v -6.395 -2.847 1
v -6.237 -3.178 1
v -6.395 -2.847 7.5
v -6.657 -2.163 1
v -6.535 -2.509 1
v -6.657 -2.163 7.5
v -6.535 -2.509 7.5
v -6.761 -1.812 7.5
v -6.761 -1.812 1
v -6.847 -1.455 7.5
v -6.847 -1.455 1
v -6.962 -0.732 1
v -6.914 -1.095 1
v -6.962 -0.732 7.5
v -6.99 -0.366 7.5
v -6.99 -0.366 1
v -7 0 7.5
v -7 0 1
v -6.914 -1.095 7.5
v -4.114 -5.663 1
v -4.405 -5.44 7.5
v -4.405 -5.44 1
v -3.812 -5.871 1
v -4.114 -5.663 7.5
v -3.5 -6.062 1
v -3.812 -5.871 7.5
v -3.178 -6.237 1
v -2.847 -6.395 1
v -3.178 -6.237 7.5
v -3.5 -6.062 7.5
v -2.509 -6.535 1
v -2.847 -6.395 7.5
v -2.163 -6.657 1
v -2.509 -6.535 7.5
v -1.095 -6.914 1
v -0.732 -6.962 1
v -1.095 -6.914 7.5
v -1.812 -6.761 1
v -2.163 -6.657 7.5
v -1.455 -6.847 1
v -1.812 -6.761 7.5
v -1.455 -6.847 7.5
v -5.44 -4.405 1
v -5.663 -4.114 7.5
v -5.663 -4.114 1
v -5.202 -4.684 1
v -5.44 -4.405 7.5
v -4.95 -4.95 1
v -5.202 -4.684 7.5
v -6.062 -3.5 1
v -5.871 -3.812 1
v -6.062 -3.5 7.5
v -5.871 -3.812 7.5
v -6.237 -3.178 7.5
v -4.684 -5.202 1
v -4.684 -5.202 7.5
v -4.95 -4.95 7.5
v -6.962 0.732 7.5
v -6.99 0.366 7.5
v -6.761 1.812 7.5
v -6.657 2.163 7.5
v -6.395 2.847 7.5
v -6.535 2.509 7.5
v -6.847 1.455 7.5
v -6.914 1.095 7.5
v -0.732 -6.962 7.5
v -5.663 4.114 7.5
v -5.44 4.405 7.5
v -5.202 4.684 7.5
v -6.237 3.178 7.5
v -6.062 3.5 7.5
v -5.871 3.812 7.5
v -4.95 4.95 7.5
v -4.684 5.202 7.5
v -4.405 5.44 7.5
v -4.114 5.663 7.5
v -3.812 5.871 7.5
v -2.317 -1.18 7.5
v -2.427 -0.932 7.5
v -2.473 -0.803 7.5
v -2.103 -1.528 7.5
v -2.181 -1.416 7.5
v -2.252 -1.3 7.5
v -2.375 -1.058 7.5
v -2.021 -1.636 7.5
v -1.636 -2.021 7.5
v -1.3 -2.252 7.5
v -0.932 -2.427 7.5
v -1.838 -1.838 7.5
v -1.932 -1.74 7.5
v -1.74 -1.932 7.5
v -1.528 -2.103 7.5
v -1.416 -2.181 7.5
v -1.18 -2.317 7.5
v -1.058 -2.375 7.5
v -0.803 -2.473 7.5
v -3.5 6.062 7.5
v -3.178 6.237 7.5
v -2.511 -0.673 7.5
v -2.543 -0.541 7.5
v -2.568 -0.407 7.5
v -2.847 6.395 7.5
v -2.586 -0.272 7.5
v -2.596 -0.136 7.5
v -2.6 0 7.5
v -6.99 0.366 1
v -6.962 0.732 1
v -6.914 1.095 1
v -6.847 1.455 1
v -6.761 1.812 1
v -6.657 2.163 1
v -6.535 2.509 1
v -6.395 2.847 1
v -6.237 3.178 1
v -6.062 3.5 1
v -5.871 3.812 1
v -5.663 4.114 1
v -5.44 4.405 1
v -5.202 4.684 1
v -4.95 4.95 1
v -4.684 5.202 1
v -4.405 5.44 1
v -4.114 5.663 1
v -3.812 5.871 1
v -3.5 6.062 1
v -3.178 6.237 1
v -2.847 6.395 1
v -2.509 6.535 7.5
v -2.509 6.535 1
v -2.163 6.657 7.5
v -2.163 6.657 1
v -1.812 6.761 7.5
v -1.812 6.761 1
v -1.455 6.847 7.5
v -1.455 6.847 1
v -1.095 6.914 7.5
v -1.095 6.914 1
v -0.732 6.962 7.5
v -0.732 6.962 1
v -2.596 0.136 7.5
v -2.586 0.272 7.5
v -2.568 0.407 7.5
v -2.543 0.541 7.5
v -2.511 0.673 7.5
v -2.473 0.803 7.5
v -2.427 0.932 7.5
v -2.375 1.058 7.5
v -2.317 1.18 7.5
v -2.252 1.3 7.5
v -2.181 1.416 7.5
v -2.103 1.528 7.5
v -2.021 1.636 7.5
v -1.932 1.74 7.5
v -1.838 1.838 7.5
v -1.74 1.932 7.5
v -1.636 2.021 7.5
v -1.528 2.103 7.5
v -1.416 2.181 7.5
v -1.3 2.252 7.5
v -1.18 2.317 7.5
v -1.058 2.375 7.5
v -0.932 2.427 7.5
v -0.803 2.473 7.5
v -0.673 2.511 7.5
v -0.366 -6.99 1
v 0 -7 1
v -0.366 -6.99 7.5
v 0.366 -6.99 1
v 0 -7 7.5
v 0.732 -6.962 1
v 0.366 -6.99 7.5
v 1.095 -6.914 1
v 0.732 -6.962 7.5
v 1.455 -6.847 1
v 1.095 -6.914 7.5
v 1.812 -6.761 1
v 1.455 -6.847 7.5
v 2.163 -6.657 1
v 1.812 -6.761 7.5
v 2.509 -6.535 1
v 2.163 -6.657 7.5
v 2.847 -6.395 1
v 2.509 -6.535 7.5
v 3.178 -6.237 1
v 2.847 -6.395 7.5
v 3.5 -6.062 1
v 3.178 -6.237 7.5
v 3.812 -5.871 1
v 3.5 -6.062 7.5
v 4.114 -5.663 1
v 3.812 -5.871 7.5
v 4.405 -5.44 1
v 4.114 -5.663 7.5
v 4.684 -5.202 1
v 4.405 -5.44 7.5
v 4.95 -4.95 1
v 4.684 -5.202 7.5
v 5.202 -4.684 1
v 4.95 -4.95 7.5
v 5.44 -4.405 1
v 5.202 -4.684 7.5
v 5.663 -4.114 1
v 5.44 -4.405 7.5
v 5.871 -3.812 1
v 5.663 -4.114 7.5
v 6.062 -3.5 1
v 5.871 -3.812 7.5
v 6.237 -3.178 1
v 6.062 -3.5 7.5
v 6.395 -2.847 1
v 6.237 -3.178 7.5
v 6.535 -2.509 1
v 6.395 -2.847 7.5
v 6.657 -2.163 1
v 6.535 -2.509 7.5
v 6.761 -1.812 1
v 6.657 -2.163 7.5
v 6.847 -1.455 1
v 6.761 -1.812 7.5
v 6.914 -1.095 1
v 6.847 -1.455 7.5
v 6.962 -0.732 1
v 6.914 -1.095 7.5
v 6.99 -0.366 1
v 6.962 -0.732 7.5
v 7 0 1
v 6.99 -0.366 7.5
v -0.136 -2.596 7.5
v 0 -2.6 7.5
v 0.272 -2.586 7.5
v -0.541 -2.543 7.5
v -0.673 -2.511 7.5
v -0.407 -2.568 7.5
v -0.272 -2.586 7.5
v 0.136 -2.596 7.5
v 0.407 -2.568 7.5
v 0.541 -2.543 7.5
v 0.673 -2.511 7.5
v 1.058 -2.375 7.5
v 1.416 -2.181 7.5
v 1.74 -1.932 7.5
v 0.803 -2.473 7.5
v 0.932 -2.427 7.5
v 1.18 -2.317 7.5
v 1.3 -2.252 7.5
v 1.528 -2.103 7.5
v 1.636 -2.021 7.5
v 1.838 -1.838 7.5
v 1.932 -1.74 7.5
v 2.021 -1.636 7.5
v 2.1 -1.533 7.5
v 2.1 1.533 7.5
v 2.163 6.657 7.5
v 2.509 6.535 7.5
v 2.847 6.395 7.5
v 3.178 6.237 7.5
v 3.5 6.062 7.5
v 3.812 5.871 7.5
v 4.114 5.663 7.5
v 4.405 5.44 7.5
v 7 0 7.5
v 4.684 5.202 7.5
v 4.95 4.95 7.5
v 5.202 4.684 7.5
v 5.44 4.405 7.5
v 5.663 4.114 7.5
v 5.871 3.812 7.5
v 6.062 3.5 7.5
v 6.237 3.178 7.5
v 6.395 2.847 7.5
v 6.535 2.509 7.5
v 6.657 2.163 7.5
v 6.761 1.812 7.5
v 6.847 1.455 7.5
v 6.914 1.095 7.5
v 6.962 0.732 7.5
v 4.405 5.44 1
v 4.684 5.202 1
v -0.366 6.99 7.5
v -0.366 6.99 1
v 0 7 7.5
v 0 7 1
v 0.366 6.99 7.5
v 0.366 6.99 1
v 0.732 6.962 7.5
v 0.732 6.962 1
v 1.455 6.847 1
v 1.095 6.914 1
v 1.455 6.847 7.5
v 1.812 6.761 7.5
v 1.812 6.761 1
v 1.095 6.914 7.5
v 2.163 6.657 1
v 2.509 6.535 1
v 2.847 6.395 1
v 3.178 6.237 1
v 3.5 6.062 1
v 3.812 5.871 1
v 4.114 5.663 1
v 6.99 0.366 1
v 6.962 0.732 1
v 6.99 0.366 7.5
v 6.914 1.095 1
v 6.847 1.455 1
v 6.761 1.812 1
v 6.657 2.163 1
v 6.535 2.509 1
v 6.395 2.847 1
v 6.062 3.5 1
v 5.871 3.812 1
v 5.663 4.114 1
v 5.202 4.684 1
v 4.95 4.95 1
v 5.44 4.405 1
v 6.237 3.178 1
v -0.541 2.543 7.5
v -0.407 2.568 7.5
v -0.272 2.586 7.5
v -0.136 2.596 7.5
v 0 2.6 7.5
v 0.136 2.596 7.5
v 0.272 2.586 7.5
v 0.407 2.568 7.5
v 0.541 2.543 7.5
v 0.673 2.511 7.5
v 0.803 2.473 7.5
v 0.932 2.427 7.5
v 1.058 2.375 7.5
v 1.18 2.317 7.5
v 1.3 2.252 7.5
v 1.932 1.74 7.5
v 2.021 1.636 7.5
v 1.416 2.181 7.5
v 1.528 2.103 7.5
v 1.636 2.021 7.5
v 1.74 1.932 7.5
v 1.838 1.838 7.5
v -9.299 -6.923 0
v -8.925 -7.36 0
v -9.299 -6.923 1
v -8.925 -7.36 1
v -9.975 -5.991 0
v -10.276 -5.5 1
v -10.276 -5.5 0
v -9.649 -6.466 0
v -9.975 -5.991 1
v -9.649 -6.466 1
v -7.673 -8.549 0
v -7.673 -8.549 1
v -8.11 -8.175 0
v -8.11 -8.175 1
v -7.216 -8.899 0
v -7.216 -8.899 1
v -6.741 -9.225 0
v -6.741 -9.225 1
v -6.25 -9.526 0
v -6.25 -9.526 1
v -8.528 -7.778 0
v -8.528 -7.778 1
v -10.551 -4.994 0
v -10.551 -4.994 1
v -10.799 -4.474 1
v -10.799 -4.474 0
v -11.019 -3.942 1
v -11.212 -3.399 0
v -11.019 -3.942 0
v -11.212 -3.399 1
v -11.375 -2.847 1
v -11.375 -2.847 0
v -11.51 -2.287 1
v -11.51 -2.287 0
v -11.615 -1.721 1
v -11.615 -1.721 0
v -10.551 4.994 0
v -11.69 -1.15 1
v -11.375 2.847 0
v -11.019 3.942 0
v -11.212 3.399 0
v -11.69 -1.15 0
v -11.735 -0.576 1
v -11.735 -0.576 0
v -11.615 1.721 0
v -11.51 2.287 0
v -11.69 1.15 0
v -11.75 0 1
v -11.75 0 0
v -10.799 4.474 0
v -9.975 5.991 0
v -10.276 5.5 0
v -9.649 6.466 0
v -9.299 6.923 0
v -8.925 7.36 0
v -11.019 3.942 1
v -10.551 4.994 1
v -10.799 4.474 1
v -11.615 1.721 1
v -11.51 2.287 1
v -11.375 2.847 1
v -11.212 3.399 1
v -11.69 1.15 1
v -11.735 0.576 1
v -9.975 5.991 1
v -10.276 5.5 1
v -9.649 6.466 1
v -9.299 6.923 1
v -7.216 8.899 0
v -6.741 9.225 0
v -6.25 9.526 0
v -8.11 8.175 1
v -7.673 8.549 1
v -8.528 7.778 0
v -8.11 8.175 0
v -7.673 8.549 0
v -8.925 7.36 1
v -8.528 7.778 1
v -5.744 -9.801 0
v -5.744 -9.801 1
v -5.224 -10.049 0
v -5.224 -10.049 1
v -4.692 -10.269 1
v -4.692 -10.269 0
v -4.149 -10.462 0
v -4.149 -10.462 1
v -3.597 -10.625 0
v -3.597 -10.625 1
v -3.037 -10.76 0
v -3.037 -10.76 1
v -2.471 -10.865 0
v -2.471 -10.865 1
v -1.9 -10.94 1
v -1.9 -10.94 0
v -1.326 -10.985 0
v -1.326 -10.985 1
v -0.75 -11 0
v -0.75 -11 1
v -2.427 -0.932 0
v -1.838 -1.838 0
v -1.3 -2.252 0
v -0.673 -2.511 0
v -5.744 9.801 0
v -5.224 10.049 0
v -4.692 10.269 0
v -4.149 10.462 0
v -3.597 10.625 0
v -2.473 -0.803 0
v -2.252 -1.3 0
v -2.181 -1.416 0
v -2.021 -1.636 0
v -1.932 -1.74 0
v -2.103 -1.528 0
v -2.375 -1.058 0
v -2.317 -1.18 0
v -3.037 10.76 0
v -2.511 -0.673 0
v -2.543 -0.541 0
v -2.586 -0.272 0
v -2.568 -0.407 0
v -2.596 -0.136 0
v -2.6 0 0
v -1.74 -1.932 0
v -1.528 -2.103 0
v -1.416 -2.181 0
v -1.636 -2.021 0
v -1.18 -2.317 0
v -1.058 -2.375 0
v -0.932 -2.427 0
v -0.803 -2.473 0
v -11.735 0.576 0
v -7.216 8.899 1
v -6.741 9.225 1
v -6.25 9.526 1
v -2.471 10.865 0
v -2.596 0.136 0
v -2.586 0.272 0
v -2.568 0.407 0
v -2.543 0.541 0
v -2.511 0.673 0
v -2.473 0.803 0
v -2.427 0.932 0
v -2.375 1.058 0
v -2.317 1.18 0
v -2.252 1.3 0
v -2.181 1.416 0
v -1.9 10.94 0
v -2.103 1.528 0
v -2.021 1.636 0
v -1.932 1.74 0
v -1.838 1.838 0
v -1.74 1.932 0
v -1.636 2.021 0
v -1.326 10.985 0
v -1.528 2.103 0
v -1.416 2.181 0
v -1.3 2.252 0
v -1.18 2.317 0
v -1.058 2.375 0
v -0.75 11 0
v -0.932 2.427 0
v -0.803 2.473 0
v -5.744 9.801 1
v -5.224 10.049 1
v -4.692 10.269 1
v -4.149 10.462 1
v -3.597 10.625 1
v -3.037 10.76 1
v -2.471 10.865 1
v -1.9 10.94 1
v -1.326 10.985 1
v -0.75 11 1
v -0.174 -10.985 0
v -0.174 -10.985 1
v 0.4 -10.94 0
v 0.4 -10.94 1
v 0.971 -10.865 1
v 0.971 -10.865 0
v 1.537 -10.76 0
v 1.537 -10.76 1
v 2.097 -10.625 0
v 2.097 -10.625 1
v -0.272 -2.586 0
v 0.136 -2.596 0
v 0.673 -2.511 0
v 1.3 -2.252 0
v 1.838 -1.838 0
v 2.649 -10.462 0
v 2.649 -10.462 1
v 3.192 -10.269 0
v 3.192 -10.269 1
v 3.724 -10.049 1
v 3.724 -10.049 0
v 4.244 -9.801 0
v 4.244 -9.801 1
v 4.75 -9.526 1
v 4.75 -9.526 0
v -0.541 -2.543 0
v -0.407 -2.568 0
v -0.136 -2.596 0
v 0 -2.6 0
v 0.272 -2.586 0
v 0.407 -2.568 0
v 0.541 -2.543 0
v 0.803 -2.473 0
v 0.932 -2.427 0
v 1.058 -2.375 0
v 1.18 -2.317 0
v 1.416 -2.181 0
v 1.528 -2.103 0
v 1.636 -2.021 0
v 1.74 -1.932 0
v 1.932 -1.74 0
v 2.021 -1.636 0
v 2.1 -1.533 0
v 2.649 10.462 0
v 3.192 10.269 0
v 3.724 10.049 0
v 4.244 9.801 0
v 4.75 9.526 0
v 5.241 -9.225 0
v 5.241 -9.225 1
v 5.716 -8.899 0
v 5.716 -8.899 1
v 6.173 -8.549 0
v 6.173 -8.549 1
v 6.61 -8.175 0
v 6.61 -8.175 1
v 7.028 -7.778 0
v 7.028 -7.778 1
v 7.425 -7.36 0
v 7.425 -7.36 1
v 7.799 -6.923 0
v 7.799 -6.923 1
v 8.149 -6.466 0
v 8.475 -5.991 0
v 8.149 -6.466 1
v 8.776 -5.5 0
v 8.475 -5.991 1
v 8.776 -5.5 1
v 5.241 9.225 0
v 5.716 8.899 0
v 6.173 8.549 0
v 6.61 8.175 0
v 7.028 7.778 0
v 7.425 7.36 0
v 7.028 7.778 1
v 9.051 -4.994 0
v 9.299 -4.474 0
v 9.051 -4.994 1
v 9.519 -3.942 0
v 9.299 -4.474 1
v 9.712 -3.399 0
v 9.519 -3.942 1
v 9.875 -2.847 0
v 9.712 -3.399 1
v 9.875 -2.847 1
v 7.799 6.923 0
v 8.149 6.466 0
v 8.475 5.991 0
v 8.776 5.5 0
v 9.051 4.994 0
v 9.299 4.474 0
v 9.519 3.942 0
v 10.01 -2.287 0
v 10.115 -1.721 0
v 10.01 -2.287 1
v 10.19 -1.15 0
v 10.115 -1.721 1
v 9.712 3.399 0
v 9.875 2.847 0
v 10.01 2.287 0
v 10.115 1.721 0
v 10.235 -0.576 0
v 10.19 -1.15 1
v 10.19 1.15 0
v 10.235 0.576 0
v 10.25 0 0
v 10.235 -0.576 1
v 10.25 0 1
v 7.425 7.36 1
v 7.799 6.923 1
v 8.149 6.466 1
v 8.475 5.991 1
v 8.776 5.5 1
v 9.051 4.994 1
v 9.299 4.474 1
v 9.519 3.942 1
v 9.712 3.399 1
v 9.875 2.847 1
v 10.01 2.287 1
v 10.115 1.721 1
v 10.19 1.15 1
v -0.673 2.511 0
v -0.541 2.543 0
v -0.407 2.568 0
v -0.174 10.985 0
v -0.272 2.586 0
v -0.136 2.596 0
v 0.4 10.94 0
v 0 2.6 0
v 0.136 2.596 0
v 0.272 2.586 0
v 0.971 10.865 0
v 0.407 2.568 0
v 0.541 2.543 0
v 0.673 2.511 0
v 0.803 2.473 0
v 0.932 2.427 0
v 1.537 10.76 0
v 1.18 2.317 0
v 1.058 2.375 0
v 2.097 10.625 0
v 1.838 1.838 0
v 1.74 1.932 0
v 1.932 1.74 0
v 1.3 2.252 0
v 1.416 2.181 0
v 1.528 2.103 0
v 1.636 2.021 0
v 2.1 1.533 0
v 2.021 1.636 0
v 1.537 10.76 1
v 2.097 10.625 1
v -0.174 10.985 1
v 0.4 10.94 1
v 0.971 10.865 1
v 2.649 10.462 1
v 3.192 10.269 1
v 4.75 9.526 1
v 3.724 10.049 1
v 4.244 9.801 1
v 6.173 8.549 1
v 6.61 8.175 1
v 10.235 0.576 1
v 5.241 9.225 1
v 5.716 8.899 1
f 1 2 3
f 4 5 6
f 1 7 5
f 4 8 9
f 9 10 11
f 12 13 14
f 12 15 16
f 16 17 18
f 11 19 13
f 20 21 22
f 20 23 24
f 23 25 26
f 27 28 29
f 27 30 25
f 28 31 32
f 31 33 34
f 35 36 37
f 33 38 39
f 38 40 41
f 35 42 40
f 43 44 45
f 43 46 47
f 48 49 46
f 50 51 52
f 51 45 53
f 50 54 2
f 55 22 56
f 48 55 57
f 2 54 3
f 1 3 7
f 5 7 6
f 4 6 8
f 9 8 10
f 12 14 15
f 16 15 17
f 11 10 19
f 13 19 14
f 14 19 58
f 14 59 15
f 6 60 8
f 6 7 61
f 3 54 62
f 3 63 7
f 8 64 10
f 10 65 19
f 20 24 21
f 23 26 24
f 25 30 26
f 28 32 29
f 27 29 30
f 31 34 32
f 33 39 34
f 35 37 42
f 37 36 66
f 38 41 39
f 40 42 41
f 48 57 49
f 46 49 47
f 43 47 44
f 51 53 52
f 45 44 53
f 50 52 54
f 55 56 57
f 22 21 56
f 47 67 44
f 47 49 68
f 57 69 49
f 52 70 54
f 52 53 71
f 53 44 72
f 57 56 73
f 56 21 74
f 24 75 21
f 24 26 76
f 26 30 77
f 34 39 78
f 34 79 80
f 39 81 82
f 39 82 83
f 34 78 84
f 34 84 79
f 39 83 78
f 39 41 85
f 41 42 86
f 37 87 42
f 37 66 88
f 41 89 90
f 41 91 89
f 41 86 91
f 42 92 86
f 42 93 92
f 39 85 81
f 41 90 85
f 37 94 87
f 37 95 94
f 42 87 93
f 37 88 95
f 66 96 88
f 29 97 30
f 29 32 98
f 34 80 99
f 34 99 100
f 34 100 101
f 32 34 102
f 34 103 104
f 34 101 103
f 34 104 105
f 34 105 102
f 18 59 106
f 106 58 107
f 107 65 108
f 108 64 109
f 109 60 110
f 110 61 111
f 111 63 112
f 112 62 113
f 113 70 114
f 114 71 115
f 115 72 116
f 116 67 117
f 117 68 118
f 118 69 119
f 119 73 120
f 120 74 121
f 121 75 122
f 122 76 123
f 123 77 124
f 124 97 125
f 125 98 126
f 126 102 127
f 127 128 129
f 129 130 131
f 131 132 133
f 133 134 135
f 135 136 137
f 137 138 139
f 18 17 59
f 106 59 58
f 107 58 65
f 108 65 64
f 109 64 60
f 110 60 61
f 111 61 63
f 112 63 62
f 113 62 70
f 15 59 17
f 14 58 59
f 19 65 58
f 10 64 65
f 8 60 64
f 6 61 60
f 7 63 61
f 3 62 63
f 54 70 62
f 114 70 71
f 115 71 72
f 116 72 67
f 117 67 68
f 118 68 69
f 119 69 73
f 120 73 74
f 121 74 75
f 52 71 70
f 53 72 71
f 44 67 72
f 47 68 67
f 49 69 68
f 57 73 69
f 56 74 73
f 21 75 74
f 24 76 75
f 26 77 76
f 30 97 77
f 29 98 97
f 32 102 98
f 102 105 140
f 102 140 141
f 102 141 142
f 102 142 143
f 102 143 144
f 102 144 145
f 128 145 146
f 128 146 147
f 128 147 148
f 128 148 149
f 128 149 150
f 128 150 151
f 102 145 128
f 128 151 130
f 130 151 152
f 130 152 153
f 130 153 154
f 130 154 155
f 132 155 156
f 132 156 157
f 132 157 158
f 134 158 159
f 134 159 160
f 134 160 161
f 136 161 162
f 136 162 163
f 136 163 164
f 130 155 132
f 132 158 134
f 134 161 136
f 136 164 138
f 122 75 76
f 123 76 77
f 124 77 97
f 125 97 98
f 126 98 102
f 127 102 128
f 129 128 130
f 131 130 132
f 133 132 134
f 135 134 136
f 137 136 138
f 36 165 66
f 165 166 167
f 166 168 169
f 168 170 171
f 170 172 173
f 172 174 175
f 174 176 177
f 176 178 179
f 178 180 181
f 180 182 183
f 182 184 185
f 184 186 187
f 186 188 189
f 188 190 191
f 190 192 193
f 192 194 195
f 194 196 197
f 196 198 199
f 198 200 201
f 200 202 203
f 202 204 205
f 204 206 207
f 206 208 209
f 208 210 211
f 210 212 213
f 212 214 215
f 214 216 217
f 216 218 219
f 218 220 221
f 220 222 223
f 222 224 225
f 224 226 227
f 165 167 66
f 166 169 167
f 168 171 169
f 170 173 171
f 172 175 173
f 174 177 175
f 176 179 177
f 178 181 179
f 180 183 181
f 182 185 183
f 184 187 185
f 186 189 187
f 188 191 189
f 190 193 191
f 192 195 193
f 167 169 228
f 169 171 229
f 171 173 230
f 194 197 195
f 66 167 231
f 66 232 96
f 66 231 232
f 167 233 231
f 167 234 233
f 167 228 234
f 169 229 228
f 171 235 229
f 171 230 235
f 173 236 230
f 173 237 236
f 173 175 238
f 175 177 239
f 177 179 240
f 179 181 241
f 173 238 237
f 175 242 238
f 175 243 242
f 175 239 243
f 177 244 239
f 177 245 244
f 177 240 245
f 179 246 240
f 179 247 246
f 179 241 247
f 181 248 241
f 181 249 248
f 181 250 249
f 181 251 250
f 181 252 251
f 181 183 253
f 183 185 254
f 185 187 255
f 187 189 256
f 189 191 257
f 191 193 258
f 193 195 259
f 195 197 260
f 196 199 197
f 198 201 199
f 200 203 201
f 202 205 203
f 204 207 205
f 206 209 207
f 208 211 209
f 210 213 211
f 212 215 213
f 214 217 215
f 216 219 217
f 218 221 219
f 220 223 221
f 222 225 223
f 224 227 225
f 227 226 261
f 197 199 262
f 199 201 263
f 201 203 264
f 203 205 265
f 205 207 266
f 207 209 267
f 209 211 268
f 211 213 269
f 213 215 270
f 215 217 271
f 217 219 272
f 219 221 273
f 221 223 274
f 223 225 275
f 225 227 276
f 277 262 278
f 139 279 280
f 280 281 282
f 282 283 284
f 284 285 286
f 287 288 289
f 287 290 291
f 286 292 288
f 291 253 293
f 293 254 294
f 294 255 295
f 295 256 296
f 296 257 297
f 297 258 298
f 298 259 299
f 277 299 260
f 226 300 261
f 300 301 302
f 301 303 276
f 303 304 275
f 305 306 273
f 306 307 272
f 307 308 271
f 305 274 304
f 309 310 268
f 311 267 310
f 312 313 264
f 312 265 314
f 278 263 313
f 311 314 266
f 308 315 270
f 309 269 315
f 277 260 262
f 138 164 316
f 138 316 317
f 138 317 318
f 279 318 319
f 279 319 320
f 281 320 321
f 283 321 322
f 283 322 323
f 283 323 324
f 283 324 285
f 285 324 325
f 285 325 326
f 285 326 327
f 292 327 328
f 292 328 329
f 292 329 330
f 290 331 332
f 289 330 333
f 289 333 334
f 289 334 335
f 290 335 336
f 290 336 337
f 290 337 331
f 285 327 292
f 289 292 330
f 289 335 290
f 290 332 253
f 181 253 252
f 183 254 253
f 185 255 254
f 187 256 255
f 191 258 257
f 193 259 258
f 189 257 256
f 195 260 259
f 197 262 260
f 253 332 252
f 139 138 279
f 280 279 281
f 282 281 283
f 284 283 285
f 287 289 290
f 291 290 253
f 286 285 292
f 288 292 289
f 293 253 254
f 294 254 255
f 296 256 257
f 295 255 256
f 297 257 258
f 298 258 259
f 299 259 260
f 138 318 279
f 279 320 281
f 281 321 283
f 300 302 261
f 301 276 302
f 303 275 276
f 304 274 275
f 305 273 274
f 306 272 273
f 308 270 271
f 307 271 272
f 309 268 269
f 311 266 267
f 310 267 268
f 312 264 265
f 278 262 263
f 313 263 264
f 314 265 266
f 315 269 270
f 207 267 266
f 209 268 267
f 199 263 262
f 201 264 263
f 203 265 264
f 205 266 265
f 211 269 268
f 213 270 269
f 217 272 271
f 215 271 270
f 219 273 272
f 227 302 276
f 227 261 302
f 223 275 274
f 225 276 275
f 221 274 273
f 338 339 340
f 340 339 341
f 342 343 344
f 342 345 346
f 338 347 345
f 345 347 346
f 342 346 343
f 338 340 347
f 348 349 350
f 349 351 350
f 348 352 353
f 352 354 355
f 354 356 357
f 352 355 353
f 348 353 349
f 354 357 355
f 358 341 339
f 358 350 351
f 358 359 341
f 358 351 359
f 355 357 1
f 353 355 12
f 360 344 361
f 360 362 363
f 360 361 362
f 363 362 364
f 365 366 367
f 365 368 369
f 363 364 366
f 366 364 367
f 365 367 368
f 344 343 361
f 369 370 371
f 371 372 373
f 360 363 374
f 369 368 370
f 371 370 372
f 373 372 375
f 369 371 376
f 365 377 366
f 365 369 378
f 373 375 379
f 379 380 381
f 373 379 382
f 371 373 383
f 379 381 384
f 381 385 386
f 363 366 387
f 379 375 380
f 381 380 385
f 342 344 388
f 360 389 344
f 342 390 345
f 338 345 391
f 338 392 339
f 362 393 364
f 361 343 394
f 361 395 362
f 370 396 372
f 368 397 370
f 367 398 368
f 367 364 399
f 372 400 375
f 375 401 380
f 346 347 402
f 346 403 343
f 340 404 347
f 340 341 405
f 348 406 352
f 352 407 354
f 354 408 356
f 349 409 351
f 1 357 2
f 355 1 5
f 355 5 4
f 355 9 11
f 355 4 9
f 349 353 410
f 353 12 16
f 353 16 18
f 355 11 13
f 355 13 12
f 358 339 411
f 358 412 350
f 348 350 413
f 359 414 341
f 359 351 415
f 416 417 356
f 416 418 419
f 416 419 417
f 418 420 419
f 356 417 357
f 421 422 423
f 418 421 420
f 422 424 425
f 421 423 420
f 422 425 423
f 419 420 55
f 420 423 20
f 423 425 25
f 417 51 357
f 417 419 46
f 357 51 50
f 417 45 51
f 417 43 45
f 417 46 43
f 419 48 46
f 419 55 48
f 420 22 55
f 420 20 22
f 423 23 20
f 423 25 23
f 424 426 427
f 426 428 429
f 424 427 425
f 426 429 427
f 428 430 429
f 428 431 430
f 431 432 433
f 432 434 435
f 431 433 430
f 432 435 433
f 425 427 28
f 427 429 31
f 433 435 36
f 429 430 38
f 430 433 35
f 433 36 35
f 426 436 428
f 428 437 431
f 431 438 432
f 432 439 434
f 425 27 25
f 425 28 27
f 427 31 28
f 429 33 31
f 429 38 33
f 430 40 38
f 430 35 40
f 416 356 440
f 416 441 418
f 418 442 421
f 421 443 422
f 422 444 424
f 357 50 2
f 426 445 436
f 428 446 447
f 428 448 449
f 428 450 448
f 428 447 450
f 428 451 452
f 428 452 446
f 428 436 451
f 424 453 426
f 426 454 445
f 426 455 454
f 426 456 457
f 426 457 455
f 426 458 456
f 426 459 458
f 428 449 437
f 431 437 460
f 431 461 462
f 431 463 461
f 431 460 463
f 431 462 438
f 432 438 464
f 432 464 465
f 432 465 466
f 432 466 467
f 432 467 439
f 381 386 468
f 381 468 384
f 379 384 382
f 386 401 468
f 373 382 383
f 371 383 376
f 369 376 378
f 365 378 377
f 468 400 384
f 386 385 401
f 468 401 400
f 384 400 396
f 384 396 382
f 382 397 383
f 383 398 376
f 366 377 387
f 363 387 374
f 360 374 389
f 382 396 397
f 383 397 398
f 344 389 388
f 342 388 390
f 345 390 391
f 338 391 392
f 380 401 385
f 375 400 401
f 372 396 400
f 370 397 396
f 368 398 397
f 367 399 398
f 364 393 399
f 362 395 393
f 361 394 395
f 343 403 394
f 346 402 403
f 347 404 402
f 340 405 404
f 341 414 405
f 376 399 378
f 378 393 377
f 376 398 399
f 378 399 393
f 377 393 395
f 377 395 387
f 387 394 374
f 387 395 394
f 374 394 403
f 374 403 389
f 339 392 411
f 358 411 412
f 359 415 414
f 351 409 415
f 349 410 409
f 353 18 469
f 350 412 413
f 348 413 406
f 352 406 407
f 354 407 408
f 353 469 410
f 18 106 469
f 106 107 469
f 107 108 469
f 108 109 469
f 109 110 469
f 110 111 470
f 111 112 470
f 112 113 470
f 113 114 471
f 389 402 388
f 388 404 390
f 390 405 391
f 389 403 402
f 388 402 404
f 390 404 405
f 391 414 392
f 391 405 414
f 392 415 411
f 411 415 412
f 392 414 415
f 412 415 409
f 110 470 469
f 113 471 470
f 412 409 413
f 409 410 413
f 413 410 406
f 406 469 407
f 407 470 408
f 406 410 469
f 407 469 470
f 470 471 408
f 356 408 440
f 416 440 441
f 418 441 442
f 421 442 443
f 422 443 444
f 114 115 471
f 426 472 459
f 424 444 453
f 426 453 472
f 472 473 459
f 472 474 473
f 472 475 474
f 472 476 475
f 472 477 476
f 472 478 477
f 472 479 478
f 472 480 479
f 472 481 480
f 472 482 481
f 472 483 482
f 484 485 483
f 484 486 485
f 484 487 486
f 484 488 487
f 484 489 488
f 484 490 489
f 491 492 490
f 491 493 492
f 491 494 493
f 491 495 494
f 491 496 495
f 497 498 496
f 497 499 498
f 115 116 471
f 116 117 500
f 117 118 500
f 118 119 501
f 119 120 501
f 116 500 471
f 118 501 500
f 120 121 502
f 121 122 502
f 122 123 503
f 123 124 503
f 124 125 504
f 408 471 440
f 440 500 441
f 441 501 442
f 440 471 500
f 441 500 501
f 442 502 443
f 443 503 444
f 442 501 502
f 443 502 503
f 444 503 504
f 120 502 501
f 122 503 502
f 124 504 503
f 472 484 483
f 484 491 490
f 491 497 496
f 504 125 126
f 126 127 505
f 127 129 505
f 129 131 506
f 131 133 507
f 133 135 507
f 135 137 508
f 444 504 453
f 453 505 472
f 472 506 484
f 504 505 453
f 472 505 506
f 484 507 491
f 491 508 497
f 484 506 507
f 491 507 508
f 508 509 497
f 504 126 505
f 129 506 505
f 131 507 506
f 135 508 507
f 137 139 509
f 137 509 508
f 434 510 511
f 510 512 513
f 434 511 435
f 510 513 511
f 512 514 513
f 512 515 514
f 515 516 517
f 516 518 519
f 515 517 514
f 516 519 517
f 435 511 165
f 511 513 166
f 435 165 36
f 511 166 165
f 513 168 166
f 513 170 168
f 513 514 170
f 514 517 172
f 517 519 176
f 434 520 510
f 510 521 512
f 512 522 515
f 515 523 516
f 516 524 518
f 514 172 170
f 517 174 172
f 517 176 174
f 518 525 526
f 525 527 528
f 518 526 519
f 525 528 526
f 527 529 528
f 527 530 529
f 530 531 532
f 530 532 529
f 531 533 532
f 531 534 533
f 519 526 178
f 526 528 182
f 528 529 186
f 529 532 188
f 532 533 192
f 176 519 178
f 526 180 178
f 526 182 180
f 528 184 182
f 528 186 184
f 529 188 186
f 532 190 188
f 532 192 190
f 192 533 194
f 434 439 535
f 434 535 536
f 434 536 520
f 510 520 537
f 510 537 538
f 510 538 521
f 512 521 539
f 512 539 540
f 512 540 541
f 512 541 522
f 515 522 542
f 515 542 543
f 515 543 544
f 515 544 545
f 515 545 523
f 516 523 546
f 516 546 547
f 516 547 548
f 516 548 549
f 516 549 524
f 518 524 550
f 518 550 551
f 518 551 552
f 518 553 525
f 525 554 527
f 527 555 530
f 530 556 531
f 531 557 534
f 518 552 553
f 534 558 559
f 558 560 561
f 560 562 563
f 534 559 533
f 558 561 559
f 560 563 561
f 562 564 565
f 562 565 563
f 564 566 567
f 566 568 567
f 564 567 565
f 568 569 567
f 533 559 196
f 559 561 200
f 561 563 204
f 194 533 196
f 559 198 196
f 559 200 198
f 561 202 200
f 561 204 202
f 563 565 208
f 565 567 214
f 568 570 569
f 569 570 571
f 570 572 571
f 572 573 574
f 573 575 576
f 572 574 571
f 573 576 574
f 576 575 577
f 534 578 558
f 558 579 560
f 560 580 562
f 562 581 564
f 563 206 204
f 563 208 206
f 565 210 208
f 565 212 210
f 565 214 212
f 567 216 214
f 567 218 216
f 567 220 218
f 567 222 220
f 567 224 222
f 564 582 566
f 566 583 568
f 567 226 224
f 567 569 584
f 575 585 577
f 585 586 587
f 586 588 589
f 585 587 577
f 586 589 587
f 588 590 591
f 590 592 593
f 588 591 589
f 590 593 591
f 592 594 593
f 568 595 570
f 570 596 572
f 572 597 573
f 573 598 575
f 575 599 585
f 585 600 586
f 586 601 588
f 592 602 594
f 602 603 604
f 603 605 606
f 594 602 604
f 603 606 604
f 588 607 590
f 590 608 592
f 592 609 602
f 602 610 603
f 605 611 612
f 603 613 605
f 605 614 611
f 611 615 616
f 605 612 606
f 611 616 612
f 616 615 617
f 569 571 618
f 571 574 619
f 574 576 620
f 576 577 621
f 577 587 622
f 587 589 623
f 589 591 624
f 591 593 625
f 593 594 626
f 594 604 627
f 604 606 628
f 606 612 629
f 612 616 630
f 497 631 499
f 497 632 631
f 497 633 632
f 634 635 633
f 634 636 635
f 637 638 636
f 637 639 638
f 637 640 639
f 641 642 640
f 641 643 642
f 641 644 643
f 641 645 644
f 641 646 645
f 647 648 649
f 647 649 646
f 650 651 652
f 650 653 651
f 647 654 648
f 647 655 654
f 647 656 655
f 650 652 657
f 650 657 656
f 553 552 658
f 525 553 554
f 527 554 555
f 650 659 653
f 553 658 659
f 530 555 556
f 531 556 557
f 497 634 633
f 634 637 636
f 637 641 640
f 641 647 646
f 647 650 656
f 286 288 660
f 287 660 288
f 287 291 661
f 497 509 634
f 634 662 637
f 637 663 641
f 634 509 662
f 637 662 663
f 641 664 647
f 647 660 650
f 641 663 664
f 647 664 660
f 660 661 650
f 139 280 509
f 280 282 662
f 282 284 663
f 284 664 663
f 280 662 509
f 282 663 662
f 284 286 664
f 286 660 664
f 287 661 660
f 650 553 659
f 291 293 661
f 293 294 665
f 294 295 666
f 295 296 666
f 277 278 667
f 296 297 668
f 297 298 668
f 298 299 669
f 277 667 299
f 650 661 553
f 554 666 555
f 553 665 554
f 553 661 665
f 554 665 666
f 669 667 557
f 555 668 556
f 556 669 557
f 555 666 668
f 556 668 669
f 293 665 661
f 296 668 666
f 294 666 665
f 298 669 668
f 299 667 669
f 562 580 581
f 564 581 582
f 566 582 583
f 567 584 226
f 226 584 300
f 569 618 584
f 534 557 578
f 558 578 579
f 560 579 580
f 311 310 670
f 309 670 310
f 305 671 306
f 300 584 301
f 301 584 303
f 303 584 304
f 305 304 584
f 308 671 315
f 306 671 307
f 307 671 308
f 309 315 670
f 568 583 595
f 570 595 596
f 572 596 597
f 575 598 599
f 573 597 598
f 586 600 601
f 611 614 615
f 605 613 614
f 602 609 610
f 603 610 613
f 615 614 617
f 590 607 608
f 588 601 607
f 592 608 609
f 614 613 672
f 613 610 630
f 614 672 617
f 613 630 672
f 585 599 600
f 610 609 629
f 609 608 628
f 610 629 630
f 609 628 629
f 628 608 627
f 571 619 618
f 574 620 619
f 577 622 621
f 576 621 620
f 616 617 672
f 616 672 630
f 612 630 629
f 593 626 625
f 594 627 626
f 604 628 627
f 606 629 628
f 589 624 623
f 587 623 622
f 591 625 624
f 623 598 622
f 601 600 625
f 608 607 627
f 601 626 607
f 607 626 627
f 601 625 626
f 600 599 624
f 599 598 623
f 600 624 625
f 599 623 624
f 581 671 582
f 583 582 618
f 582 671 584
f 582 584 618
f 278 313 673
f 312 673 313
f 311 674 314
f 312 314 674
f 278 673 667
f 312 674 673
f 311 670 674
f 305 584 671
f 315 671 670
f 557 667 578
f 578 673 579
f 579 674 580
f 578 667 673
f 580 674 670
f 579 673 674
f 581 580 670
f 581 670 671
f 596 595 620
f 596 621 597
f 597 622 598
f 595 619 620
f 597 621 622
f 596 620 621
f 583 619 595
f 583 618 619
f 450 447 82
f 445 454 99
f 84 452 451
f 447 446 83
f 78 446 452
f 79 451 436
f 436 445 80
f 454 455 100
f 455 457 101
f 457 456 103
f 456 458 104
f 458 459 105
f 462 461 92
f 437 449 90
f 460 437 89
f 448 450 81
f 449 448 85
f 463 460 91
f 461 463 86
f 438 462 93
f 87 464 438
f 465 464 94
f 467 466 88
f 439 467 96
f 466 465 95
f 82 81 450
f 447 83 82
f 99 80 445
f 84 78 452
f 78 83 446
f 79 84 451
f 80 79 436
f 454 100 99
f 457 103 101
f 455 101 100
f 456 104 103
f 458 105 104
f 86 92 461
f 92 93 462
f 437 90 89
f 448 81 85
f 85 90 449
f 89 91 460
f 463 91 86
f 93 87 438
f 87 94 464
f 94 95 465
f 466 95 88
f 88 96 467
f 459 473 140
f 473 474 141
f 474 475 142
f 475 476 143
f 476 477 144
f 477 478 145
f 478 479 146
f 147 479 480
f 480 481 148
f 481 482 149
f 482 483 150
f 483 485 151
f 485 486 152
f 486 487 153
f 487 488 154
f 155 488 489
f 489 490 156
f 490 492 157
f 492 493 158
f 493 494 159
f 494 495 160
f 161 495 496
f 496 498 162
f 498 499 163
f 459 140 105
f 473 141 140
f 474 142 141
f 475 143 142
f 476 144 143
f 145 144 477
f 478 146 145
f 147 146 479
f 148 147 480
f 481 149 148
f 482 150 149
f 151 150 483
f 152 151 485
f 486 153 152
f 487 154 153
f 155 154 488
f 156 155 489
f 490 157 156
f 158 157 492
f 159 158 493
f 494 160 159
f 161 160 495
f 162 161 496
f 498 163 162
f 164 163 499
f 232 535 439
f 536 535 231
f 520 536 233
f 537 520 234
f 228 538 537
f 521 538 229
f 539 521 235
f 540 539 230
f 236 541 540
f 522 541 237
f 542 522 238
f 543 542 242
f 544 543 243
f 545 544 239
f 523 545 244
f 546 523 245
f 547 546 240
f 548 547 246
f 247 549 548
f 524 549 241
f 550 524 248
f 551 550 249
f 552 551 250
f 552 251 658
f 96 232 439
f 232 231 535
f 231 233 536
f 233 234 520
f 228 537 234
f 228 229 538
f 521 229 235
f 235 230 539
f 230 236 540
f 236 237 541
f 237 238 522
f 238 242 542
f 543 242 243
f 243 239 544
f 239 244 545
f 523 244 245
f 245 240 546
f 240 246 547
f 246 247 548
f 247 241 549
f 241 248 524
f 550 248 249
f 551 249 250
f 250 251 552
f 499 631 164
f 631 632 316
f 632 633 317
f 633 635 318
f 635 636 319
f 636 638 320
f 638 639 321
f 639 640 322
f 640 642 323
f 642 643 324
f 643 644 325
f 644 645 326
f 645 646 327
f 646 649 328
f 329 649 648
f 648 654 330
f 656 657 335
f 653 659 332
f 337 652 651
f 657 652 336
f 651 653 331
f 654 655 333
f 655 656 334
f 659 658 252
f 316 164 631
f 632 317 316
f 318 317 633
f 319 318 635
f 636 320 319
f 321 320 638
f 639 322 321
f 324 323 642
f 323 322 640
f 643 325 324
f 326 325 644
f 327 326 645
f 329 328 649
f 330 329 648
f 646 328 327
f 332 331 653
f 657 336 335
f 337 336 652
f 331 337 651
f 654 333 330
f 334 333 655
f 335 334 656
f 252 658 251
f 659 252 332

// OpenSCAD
// file: oobb_hardware.scad
// Generated from installed OOBB v5. All primitives use overhang=True.

module oobb_hole_m2() {
difference() {
	union() {
		cylinder(h = 1, r = 1.35);
	}
	union();
}

}

module oobb_hole_m3() {
difference() {
	union() {
		cylinder(h = 1, r = 1.8);
	}
	union();
}

}

module oobb_hole_m6() {
difference() {
	union() {
		cylinder(h = 1, r = 3.25);
	}
	union();
}

}

module oobb_nut_m2() {
difference() {
	union() {
		translate(v = [0, 0, 0]) {
			rotate(a = [0, 0, 0]) {
				difference() {
					union() {
						linear_extrude(height = 2.2) {
							polygon(points = [[2.4234, 0.0], [1.2117000000000002, 2.0987259635312085], [-1.2116999999999996, 2.0987259635312085], [-2.4234, 2.967809053053696e-16], [-1.211700000000001, -2.098725963531208], [1.2116999999999984, -2.0987259635312094]]);
						}
						translate(v = [-1.25, -2.75, -0.3]) {
							cube(size = [2.5, 5.5, 0.3]);
						}
						translate(v = [-1.25, -1.25, -0.6]) {
							cube(size = [2.5, 2.5, 0.3]);
						}
						translate(v = [-1.25, -2.75, 2.2]) {
							cube(size = [2.5, 5.5, 0.3]);
						}
						translate(v = [-1.25, -1.25, 2.5]) {
							cube(size = [2.5, 2.5, 0.3]);
						}
					}
					union();
				}
			}
		}
	}
	union();
}

}

module oobb_socket_m2() {
difference() {
	union() {
		translate(v = [0, 0, 0]) {
			rotate(a = [0, 0, 0]) {
				difference() {
					union() {
						cylinder(h = 2.2, r = 2.1);
						translate(v = [-1.25, -2.75, -0.3]) {
							cube(size = [2.5, 5.5, 0.3]);
						}
						translate(v = [-1.25, -1.25, -0.6]) {
							cube(size = [2.5, 2.5, 0.3]);
						}
					}
					union();
				}
			}
		}
	}
	union();
}

}

module oobb_nut_m3() {
difference() {
	union() {
		translate(v = [0, 0, 0]) {
			rotate(a = [0, 0, 0]) {
				difference() {
					union() {
						linear_extrude(height = 2.7) {
							polygon(points = [[3.4619999999999997, 0.0], [1.7310000000000003, 2.9981799479017264], [-1.7309999999999992, 2.9981799479017264], [-3.4619999999999997, 4.2397272186481365e-16], [-1.7310000000000014, -2.998179947901726], [1.7309999999999977, -2.9981799479017277]]);
						}
						translate(v = [-1.75, -3.25, -0.3]) {
							cube(size = [3.5, 6.5, 0.3]);
						}
						translate(v = [-1.75, -1.75, -0.6]) {
							cube(size = [3.5, 3.5, 0.3]);
						}
						translate(v = [-1.75, -3.25, 2.7]) {
							cube(size = [3.5, 6.5, 0.3]);
						}
						translate(v = [-1.75, -1.75, 3.0]) {
							cube(size = [3.5, 3.5, 0.3]);
						}
					}
					union();
				}
			}
		}
	}
	union();
}

}

module oobb_socket_m3() {
difference() {
	union() {
		translate(v = [0, 0, 0]) {
			rotate(a = [0, 0, 0]) {
				difference() {
					union() {
						cylinder(h = 3.2, r = 3.0);
						translate(v = [-1.75, -3.25, -0.3]) {
							cube(size = [3.5, 6.5, 0.3]);
						}
						translate(v = [-1.75, -1.75, -0.6]) {
							cube(size = [3.5, 3.5, 0.3]);
						}
					}
					union();
				}
			}
		}
	}
	union();
}

}
// file: parameters.scad
// Generated by working_scad.py. Edit the Python recipe to persist changes.
style = "version_5";
reduction = 20;
bearing_output = "6810";
bearing_input = "6704";
bearing_wave = "6704";
roller_diameter = 7.0;
roller_bore_diameter = 3.2;
roller_length = 12.0;
roller_material = "nylon";
central_joint_depth = 6.0;
max_screw_length = 35.0;
eccentricity = 0.75;
wave_radius = 40.0;
profile_clearance = 0.15;
roller_slot_clearance = 0.3;
roller_end_clearance = 0.3;
cage_wall = 4.0;
cage_plate_depth = 3.0;
bearing_seat_clearance = 0.1;
journal_clearance = 0.05;
bearing_axial_clearance = 0.2;
retainer_depth = 4.0;
housing_radius = 57.5;
housing_flange_width = 119.0;
housing_flange_depth = 3.0;
housing_flange_corner_radius = 1.5;
housing_screw_pitch_radius = 53.0;
housing_screw_count = 8;
input_shaft_diameter = 5.0;
input_shaft_flat_depth = 0.5;
shaft_fit_clearance = 0.1;
cage_screw_count = 5;
cage_screw_pilot_diameter = 1.6;
profile_samples_per_cavity = 100;
circle_fragments = 120;
overhang = true;
run_scad = true;
run_solidcraft = false;
// main file
include <parameters.scad>;
use <oobb_hardware.scad>;
include <geometry.scad>;
input_spacer(7.4999999999999964, true, true);
